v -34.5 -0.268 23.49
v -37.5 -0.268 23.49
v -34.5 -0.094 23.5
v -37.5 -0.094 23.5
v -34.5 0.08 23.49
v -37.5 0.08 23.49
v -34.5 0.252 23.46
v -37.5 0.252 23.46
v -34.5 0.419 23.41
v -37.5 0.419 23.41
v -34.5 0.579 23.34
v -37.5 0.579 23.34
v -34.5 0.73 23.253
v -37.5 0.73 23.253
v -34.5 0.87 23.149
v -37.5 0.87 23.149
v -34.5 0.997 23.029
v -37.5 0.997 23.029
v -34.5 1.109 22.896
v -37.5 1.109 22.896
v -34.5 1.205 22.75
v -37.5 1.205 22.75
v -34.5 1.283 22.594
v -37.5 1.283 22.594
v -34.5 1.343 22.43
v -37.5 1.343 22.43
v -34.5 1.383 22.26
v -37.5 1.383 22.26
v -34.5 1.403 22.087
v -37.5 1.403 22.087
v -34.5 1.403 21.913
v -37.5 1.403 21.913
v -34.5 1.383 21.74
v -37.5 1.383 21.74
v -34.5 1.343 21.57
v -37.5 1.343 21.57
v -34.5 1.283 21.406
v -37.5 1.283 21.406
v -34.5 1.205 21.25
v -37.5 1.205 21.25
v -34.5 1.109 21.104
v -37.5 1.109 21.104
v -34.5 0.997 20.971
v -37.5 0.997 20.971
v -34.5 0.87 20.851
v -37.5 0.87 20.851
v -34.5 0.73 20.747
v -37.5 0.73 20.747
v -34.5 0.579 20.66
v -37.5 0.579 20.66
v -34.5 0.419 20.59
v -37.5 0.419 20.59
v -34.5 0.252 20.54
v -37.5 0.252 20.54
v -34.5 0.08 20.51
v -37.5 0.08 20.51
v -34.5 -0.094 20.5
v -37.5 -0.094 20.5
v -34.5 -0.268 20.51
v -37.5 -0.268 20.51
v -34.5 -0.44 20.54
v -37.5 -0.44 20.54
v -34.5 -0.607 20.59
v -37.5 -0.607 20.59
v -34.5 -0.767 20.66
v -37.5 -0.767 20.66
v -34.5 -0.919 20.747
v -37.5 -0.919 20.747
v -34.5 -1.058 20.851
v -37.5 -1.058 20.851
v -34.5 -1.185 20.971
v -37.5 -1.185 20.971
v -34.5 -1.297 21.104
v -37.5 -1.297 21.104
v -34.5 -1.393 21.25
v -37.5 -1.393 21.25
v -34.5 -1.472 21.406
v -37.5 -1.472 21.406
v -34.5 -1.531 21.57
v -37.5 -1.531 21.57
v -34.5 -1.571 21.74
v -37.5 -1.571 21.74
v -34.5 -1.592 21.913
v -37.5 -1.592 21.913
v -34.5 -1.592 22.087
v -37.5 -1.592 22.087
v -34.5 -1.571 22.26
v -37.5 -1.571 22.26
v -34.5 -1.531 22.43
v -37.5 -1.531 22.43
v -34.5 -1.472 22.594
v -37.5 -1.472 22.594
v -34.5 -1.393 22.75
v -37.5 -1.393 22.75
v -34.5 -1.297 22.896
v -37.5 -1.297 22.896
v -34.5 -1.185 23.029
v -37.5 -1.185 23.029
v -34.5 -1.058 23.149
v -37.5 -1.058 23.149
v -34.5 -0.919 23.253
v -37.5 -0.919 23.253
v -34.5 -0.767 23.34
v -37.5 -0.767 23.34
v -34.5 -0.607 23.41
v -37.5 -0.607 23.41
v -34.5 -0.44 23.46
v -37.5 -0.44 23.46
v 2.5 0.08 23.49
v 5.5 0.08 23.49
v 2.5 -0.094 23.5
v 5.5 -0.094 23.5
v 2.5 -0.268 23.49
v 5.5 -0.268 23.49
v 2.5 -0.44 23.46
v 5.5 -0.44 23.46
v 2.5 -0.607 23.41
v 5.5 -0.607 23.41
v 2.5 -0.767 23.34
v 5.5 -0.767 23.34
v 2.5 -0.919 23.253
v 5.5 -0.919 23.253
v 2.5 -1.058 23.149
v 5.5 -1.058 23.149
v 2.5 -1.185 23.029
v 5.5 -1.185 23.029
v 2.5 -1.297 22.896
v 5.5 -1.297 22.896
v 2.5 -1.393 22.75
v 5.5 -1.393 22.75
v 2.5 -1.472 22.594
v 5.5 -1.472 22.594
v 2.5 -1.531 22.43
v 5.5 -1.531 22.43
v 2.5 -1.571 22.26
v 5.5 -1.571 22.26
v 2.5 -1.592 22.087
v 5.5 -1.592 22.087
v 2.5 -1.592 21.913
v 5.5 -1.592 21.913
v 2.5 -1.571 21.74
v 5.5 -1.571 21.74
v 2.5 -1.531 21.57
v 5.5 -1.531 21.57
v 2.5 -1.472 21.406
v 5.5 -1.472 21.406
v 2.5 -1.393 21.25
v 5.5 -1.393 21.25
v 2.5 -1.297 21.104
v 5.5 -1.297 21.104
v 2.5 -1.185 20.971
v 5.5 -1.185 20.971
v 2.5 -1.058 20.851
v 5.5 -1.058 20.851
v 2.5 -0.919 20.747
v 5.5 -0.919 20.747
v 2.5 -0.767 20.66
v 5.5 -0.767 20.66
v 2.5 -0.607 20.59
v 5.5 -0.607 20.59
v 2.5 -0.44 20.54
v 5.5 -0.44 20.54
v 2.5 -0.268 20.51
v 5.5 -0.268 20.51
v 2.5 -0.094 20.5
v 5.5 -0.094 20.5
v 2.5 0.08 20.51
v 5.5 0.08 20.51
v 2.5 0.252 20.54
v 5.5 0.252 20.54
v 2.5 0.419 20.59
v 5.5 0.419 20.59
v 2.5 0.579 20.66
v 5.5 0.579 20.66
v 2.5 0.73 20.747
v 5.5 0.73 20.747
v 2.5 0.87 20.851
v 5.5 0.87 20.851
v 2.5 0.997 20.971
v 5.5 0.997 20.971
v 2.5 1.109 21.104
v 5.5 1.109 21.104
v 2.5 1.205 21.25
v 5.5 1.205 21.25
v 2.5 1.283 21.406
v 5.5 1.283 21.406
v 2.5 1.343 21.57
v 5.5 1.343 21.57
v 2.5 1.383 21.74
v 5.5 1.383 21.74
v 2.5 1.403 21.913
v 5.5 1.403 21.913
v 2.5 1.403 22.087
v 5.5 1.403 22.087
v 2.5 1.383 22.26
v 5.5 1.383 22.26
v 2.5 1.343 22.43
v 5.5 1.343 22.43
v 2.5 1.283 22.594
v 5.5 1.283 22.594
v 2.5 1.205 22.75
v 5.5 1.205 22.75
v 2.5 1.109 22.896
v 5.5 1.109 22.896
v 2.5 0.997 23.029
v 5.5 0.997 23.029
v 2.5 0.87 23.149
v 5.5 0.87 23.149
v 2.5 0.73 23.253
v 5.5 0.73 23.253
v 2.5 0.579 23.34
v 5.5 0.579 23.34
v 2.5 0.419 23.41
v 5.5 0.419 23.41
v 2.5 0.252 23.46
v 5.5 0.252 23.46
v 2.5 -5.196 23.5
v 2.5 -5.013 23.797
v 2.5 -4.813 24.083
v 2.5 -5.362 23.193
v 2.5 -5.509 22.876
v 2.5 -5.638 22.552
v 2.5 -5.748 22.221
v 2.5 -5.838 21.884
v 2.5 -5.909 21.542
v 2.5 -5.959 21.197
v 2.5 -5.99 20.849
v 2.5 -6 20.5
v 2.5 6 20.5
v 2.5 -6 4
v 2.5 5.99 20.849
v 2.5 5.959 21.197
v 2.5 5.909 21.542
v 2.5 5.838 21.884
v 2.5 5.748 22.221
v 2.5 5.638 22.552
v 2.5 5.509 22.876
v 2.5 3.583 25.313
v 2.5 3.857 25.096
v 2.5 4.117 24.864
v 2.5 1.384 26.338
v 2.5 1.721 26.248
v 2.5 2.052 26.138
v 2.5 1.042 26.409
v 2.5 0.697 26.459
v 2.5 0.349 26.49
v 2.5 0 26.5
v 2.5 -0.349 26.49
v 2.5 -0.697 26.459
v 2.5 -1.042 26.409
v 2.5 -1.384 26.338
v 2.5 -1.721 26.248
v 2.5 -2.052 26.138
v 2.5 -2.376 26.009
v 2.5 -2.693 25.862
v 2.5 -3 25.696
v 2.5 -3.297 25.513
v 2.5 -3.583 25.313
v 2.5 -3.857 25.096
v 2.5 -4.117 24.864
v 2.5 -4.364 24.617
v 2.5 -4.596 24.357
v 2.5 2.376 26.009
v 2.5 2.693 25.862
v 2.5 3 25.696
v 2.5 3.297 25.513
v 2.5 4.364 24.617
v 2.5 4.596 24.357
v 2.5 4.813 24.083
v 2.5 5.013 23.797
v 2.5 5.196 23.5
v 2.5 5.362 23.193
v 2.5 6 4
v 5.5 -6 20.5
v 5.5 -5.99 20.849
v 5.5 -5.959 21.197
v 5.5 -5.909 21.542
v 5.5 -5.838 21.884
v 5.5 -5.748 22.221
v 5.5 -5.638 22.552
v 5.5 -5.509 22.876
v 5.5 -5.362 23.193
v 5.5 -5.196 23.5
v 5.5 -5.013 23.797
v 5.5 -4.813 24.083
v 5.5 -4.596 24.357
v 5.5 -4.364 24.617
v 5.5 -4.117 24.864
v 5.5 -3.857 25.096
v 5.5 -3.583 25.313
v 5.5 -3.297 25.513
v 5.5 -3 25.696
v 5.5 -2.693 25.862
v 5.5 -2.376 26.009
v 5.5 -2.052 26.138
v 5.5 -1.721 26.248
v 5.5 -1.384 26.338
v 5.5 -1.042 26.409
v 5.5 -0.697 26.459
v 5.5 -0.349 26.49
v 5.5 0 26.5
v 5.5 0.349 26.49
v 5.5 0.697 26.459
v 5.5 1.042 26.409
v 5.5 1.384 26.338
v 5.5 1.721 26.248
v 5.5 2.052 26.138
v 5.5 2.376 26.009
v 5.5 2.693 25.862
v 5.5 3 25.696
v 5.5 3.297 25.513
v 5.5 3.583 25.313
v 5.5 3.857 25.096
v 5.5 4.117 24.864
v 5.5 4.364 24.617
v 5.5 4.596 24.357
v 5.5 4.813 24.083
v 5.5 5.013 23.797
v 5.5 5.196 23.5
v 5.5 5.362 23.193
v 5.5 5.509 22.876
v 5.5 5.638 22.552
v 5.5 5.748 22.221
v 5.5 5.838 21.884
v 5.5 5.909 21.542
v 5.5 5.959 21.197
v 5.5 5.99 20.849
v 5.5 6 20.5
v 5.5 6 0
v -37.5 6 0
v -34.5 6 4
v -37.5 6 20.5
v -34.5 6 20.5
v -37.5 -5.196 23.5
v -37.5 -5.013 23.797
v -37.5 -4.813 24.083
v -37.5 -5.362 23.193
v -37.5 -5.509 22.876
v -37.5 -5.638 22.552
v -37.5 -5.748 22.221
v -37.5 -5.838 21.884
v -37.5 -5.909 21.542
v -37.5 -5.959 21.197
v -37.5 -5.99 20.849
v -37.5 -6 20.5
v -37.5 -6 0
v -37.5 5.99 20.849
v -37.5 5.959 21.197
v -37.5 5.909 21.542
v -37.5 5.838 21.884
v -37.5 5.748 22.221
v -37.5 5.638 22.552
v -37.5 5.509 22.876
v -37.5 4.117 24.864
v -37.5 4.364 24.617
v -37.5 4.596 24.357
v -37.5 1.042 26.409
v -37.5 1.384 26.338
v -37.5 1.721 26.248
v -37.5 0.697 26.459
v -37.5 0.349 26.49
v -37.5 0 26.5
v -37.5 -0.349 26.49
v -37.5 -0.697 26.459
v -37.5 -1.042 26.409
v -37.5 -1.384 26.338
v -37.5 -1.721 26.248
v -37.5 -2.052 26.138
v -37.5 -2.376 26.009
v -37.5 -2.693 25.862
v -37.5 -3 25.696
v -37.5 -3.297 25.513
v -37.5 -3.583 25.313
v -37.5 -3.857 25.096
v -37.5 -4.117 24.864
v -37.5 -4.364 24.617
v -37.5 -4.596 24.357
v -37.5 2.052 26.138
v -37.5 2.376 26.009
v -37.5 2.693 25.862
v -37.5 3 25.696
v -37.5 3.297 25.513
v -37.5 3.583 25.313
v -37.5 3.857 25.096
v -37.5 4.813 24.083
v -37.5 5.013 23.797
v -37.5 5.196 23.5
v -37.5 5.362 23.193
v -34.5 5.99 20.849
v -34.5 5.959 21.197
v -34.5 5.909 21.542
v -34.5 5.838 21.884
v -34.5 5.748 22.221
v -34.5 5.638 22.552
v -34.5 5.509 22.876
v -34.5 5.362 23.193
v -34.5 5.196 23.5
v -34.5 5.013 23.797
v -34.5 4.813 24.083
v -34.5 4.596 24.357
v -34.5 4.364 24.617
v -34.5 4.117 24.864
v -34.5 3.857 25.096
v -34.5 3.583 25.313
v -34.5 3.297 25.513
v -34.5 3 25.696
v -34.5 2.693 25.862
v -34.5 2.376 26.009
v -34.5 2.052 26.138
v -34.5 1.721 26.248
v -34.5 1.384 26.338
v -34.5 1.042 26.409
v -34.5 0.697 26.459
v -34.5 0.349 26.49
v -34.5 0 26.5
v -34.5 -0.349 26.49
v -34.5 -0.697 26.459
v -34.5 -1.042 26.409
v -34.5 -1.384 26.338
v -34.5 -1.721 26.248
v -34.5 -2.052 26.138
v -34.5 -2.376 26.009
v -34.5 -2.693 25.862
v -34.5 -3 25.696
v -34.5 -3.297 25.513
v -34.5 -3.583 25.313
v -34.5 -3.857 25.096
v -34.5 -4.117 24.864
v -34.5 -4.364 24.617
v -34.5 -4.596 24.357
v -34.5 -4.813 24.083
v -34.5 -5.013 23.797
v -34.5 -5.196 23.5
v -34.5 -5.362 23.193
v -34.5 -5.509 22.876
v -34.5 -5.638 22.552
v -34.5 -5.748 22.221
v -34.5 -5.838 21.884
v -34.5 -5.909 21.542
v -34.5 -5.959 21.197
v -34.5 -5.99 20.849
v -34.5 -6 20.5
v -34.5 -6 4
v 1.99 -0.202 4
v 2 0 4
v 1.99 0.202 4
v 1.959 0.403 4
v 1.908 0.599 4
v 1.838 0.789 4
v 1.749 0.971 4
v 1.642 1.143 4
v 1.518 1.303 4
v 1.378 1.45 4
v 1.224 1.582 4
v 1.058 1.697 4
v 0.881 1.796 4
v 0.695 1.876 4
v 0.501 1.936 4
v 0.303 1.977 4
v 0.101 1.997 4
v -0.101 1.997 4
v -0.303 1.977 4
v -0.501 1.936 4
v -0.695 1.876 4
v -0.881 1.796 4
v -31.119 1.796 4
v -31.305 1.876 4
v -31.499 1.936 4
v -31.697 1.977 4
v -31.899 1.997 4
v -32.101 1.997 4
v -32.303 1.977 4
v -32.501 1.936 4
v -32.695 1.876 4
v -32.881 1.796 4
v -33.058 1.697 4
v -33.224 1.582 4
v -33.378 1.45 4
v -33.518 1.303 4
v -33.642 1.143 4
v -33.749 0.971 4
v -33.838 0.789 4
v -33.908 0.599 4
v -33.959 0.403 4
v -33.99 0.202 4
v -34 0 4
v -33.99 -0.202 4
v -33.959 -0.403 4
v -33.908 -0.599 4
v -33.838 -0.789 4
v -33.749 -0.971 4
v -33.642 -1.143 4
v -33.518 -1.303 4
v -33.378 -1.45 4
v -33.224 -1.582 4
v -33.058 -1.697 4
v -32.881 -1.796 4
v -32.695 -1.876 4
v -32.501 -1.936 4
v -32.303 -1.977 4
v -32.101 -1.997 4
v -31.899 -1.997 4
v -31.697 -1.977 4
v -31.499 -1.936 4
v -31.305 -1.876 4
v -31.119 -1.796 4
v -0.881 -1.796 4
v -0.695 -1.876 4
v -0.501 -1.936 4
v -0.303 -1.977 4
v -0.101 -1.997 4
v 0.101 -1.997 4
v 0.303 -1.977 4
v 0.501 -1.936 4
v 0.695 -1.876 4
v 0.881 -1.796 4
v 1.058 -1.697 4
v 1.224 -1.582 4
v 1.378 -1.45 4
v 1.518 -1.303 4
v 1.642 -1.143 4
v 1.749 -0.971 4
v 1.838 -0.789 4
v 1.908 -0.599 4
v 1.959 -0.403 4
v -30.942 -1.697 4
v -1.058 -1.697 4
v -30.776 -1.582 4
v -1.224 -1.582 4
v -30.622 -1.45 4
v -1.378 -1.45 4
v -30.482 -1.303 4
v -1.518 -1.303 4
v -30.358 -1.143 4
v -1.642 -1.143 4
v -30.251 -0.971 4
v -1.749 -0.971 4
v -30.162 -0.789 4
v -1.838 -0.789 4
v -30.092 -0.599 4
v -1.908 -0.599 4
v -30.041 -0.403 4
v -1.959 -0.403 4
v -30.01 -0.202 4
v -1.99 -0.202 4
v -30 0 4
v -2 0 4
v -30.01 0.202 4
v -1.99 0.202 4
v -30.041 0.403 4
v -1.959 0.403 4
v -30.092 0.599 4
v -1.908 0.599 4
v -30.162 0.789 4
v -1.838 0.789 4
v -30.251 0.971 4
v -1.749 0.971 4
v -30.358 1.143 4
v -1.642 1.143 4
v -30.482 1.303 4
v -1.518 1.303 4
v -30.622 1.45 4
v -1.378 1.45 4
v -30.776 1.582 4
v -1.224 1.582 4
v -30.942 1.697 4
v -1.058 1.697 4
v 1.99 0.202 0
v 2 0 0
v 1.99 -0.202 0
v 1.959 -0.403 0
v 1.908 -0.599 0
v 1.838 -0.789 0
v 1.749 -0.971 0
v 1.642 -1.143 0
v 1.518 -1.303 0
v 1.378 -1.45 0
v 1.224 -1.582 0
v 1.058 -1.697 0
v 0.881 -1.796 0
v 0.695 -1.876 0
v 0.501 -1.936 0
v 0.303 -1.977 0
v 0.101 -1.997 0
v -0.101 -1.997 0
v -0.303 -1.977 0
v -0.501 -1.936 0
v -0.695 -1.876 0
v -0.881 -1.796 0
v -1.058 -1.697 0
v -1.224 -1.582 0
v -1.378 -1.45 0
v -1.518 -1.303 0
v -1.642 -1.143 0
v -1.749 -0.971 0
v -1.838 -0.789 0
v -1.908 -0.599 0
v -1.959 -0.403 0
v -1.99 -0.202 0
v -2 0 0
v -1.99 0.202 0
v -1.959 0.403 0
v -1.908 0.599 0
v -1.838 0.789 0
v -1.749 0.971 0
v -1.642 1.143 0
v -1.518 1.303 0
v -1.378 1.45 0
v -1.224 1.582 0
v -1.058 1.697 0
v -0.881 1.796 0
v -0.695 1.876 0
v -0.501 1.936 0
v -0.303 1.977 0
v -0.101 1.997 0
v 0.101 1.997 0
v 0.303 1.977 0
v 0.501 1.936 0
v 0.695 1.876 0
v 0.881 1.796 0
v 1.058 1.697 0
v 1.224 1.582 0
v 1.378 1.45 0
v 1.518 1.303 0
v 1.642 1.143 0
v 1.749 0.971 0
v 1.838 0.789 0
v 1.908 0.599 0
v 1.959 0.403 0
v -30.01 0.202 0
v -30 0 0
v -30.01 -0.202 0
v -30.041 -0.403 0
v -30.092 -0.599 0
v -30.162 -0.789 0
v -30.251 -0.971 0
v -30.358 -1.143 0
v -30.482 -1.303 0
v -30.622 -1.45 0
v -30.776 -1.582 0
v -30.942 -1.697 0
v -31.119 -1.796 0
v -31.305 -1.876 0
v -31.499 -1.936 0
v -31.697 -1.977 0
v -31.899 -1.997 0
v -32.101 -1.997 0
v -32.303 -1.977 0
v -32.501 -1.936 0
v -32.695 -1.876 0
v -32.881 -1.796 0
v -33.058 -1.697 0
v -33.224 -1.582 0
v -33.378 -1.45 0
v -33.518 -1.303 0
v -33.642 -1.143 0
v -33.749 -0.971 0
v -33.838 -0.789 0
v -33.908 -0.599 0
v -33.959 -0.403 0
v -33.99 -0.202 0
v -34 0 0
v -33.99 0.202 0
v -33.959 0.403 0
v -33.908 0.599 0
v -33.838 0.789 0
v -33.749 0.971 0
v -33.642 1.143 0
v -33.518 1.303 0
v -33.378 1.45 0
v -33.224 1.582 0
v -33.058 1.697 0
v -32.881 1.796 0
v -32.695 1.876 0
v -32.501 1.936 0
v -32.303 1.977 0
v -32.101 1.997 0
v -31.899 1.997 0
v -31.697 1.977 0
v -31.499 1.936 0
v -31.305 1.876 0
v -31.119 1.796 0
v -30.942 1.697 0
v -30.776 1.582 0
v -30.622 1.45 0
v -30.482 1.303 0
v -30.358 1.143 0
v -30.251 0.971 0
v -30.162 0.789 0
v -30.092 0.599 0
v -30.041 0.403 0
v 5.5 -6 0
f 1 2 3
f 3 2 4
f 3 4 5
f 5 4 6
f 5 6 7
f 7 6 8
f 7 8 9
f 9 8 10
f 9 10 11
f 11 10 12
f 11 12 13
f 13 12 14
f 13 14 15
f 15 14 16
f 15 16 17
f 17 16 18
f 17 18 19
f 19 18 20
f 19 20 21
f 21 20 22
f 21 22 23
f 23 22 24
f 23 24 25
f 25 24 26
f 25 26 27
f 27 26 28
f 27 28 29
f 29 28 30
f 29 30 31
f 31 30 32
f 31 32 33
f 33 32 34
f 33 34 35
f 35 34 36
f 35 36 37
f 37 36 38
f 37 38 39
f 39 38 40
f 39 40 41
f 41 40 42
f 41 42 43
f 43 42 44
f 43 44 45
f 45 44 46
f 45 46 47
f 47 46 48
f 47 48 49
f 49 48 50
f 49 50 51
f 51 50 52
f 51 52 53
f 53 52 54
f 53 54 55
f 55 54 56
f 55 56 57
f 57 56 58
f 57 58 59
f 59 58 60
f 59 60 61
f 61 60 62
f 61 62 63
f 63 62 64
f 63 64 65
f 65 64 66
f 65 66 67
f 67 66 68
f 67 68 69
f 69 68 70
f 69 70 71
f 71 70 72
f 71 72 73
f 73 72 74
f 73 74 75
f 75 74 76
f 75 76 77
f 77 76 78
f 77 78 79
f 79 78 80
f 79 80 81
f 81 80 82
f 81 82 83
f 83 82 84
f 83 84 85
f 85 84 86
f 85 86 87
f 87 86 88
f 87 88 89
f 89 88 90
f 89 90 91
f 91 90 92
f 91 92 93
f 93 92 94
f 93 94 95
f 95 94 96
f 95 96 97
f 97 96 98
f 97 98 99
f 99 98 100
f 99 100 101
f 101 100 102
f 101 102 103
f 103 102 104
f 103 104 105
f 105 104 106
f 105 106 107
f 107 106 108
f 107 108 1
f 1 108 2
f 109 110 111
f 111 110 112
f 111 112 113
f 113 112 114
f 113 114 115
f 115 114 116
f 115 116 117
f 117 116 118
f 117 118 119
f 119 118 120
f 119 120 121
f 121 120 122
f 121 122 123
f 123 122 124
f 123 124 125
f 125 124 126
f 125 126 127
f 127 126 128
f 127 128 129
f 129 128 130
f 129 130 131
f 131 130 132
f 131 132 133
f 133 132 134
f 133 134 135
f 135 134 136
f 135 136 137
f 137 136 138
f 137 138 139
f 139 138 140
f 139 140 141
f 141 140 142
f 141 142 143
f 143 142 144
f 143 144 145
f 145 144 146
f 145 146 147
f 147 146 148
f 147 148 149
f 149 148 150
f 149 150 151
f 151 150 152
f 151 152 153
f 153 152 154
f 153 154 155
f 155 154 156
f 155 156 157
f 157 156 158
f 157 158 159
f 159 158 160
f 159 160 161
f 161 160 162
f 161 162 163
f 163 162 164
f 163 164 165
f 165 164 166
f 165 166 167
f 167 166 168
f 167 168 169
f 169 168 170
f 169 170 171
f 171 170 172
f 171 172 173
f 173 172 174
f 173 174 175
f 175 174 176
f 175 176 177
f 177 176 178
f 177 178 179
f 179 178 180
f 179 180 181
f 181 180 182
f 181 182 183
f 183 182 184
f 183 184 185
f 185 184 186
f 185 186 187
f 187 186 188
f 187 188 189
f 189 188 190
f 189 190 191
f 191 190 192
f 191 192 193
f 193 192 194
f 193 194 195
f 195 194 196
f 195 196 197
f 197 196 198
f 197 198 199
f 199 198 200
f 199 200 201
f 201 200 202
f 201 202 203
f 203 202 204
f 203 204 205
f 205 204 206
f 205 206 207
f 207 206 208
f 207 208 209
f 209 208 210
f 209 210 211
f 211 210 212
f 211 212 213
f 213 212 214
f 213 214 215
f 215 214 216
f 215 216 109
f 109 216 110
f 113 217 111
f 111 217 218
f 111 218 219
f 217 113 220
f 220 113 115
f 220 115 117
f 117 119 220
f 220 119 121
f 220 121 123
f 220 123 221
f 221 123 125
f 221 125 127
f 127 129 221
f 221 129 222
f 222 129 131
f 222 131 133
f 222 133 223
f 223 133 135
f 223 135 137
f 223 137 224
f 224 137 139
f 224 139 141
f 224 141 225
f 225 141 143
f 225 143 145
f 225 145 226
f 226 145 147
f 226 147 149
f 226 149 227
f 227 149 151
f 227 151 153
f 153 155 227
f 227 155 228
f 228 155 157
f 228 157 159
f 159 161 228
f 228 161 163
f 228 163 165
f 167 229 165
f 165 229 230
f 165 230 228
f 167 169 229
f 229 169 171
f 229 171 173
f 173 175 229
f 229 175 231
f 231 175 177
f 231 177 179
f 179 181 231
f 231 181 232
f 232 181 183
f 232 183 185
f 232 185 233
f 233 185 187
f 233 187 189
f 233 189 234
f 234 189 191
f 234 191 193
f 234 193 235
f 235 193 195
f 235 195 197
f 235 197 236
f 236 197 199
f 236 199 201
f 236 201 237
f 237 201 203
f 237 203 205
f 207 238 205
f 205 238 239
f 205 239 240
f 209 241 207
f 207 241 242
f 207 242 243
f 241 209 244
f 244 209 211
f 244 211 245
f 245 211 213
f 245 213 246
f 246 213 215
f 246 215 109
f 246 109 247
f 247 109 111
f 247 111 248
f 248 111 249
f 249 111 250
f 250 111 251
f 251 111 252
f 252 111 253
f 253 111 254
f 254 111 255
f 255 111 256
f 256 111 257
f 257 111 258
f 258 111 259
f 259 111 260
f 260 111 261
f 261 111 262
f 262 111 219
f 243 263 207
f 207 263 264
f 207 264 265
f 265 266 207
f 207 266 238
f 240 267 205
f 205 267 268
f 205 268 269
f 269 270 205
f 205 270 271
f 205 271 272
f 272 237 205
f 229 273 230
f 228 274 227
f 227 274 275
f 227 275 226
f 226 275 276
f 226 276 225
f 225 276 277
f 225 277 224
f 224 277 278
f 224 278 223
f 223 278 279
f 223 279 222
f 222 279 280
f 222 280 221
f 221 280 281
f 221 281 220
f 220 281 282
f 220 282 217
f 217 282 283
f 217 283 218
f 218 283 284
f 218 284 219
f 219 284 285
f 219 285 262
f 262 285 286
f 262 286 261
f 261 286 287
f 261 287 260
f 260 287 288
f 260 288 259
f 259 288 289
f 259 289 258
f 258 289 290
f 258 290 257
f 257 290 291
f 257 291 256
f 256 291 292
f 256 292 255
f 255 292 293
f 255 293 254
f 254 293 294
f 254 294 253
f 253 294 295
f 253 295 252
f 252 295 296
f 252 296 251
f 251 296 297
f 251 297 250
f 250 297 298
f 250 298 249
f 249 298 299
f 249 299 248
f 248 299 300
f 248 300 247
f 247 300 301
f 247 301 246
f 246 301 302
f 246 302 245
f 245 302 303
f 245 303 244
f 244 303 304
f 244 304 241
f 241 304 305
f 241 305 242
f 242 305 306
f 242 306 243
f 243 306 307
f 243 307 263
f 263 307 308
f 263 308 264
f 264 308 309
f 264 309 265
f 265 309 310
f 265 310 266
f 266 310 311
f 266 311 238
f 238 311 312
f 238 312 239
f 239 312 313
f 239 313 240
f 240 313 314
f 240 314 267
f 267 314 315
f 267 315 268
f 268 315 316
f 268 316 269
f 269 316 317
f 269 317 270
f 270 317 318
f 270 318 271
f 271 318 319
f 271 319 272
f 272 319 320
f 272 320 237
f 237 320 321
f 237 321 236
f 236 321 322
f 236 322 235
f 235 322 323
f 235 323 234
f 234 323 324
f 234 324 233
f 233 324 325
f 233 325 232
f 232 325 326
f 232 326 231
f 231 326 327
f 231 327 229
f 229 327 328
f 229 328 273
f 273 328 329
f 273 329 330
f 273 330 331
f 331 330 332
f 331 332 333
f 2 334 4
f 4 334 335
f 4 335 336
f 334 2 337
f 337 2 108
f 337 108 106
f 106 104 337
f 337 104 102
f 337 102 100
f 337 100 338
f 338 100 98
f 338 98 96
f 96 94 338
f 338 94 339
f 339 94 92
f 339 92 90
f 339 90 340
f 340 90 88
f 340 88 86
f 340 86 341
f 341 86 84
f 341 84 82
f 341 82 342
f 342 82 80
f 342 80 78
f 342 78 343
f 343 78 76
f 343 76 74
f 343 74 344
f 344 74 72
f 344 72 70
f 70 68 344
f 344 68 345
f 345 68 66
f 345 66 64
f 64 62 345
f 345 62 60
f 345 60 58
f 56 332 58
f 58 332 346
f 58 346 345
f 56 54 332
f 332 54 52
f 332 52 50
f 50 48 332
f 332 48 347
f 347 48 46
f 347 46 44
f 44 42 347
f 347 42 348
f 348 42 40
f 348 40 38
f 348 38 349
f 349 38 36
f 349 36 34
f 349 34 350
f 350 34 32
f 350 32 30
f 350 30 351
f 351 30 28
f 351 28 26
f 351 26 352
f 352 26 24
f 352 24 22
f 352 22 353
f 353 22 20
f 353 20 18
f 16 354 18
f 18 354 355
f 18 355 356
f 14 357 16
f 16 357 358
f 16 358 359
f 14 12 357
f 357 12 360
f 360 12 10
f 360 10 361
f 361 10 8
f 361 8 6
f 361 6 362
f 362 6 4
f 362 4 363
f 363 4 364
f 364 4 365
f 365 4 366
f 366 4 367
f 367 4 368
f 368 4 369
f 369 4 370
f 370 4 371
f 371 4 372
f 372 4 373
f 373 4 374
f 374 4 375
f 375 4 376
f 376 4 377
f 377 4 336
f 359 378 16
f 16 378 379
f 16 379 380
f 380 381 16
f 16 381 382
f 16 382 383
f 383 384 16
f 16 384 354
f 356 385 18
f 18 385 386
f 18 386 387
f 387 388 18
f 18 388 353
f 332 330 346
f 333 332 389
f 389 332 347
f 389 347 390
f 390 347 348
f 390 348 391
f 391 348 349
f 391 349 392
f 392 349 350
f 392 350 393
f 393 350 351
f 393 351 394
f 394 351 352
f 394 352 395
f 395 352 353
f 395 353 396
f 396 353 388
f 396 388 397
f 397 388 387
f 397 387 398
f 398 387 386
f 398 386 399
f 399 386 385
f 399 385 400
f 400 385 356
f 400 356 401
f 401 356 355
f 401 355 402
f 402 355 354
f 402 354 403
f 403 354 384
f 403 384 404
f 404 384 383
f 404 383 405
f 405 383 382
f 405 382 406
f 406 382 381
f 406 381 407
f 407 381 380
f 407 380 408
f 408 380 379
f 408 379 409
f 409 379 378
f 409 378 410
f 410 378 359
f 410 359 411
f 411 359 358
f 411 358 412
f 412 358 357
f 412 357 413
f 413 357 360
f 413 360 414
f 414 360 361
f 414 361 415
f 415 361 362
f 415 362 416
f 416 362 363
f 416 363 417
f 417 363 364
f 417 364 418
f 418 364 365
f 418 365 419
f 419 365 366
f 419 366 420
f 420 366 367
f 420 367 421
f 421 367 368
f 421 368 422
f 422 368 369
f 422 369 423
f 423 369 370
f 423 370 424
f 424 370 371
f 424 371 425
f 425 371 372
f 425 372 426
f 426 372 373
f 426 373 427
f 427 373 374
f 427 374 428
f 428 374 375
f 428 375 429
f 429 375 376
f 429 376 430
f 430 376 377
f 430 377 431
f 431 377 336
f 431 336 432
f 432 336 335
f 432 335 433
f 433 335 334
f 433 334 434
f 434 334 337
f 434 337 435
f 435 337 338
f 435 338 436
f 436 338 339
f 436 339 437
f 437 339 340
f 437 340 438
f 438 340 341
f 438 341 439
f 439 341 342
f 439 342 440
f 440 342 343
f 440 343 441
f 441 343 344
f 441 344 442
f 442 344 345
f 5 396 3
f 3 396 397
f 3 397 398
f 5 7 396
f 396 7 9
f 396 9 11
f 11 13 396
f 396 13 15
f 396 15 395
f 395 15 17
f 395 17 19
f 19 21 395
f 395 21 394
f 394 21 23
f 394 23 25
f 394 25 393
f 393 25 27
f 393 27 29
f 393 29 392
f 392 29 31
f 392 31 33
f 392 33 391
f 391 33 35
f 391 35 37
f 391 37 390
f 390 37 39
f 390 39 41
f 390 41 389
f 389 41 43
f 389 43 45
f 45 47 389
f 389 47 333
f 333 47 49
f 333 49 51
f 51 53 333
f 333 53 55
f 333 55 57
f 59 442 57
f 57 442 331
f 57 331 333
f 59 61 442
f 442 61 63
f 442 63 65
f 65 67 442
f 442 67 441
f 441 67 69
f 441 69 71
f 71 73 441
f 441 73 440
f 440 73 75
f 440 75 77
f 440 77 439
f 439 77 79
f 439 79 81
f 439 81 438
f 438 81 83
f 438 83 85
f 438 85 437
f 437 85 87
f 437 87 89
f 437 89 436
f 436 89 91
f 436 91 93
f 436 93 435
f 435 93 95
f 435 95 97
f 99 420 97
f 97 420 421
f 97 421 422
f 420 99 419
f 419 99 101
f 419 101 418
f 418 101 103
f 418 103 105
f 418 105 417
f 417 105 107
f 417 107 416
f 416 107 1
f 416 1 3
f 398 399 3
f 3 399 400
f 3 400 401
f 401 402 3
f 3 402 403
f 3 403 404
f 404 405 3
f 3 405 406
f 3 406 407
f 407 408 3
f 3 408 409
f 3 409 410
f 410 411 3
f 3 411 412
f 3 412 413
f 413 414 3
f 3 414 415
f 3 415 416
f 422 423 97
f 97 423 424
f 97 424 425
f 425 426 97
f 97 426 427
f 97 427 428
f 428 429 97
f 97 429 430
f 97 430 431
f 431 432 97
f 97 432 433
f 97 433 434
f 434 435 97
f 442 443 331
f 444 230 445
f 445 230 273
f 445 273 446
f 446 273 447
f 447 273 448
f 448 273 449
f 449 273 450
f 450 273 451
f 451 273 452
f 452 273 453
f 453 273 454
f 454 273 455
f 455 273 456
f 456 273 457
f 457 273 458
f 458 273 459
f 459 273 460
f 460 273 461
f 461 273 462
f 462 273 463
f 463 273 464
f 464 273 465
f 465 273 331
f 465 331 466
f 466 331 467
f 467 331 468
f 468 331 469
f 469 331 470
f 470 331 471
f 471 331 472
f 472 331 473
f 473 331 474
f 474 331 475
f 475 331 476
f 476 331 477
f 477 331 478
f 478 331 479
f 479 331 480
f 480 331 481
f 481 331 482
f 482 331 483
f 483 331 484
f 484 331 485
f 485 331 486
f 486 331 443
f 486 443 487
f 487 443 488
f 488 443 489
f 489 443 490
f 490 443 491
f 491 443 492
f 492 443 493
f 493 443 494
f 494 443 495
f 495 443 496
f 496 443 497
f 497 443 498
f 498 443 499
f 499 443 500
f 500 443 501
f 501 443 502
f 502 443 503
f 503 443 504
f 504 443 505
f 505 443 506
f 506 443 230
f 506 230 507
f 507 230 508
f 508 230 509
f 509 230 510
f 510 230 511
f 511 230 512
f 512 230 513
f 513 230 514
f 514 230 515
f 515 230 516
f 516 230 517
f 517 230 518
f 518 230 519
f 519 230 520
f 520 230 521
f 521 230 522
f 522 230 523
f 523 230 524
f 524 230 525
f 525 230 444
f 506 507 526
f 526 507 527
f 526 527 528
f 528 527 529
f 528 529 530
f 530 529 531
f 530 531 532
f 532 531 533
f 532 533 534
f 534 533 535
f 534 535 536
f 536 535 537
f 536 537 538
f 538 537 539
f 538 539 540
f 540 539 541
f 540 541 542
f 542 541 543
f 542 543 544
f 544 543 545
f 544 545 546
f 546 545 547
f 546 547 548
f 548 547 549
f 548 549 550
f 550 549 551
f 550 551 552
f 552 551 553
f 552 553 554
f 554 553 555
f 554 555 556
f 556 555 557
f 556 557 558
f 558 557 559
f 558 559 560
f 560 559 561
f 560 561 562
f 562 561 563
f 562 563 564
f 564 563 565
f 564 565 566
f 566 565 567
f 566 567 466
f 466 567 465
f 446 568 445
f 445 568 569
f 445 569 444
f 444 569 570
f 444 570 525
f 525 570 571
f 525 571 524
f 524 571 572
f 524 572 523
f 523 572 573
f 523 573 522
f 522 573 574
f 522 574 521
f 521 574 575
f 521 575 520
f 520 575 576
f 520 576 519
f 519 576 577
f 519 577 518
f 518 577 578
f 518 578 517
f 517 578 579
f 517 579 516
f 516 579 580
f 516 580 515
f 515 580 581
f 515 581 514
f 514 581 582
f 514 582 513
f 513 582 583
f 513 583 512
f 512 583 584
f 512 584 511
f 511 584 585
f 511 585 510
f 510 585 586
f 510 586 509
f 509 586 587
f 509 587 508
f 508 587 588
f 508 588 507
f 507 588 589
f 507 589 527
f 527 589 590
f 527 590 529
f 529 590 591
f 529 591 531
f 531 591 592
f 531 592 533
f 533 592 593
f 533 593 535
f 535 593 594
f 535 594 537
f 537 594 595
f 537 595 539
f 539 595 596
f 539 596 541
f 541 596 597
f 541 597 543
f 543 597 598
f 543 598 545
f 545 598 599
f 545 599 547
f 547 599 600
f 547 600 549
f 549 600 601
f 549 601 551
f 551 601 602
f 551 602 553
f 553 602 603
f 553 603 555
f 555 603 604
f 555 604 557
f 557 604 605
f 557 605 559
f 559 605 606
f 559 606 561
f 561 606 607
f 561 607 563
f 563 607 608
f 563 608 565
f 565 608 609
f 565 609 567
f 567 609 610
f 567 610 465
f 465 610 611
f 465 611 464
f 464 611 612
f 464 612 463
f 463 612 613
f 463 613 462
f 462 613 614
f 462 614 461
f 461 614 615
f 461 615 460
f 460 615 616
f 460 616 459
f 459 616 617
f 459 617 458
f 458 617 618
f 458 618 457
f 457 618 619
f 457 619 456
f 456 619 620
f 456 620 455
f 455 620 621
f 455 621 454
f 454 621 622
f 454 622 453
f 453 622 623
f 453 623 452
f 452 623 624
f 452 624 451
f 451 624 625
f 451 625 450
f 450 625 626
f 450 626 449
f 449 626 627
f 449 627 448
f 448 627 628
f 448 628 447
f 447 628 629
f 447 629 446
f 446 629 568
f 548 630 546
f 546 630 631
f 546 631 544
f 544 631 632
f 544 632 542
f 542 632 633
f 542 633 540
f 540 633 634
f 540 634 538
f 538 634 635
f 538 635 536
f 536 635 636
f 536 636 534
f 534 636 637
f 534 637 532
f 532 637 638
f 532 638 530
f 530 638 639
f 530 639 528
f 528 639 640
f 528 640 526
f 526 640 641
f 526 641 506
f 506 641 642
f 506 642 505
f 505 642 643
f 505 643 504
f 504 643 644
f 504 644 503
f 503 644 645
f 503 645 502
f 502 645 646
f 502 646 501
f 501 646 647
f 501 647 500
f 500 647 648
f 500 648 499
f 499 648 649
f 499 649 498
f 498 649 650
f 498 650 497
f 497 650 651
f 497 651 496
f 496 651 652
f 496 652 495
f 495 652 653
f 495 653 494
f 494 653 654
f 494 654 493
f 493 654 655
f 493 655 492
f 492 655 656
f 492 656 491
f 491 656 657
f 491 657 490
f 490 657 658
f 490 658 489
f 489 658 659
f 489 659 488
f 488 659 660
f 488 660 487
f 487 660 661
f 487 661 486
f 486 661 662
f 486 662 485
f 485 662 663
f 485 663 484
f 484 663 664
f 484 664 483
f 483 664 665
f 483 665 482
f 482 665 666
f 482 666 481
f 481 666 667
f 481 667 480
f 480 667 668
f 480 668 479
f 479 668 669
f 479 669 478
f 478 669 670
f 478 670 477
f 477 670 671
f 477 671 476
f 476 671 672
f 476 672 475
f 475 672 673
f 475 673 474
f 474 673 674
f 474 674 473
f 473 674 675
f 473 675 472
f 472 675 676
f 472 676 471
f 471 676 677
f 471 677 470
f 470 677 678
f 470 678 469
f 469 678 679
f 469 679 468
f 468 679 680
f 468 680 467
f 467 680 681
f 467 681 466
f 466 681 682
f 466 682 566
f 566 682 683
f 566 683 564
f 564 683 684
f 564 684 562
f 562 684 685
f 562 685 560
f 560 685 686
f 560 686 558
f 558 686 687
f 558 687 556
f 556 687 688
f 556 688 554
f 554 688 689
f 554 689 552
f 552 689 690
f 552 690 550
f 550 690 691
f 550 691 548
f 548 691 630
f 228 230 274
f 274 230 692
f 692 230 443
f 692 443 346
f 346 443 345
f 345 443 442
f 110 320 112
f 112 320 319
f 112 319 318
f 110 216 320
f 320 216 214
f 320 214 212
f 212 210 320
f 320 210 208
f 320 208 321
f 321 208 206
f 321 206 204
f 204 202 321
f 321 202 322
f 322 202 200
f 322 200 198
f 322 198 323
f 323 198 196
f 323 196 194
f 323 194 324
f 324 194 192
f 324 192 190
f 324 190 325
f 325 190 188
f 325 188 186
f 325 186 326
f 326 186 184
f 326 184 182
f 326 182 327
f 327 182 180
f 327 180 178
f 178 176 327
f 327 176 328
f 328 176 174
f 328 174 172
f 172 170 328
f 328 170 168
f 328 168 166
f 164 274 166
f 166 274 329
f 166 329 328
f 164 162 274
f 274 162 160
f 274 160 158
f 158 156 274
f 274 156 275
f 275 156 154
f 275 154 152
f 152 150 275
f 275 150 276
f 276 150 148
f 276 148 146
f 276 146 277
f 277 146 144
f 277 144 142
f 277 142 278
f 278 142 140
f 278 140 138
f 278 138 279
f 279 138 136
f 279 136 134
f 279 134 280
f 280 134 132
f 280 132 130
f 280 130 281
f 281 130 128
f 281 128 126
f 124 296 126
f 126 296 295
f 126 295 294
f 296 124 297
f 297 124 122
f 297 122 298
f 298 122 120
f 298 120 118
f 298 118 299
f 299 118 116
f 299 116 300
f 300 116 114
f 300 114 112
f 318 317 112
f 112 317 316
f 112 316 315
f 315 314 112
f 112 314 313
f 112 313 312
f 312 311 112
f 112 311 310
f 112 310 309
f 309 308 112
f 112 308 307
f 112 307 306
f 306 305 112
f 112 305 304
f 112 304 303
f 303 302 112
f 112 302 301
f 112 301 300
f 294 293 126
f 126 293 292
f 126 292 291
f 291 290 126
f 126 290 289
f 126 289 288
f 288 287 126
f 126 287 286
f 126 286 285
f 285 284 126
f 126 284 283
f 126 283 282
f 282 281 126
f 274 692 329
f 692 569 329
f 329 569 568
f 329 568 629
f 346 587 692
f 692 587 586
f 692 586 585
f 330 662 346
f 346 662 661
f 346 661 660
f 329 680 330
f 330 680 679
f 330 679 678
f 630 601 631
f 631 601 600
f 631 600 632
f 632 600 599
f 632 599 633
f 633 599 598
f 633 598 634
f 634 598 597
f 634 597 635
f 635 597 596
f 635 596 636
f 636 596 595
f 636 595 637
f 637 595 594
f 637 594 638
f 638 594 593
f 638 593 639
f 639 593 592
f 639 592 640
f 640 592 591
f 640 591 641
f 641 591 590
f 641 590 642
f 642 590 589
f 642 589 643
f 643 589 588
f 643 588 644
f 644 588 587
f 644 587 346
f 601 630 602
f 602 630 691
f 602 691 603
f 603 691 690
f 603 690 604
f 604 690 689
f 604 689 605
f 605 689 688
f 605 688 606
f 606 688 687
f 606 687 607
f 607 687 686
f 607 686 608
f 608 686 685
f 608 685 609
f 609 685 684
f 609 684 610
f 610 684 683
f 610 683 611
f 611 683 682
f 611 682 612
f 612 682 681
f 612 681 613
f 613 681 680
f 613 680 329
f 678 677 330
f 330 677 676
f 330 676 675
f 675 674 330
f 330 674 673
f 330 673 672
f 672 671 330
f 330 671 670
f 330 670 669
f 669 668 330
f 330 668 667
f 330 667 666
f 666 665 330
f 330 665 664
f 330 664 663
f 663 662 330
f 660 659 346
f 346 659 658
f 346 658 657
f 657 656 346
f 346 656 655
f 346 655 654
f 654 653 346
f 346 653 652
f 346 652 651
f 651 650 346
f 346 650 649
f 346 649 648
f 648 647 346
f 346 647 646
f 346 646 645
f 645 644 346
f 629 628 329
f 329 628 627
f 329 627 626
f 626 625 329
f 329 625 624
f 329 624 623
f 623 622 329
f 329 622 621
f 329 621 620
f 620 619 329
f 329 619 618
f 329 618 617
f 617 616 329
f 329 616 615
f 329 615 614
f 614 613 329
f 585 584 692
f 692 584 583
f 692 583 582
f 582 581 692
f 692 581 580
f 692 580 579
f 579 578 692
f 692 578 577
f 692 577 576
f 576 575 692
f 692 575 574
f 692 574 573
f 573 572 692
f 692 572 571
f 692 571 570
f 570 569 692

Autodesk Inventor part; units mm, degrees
ref_plane "YZ Plane" through (0, 0, 0) normal (1, 0, 0) x (0, 1, 0)
ref_plane "XZ Plane" through (0, 0, 0) normal (0, 1, 0) x (-1, 0, 0)
ref_plane "XY Plane" through (0, 0, 0) normal (0, 0, 1) x (1, 0, 0)
sketch "Szkic1" plane through (0, 0, 0) normal (0, 0, 1) x (1, 0, 0)
  line L0 (0, 0) -> (-32, 0)
  circle A0 centre (-32, 0) radius 2
  circle A1 centre (0, 0) radius 2
  line L1 (-37.5, -6) -> (5.5, -6)
  line L2 (5.5, -6) -> (5.5, 6)
  line L3 (5.5, 6) -> (-37.5, 6)
  line L4 (-37.5, 6) -> (-37.5, -6)
  line L5 (-37.5, -6) -> (5.5, 6) construction
  line L6 (5.5, -6) -> (-37.5, 6) construction
  point P0 (-16, 0)
  dimension "d2" = 32
  dimension "d3" = 4
  dimension "d4" = 4
  dimension "d5" = 43
  dimension "d6" = 12
extrude "Wyciągnięcie proste1" add sketch "Szkic1" along normal blind 4
sketch "Szkic2" plane through (0, 0, 4) normal (0, 0, 1) x (1, 0, 0)
  line L0 (5.5, -6) -> (5.5, 6) projected
  line L1 (-37.5, -6) -> (5.5, -6) projected
  line L2 (5.5, 6) -> (2.5, 6)
  line L3 (2.5, 6) -> (2.5, -6)
  line L4 (2.5, -6) -> (5.5, -6)
  line L5 (5.5, -6) -> (5.5, 6)
  line L6 (-37.5, 6) -> (-34.5, 6)
  line L7 (-34.5, 6) -> (-34.5, -6)
  line L8 (-34.5, -6) -> (-37.5, -6)
  line L9 (-37.5, -6) -> (-37.5, 6)
  dimension "d12" = 3
  dimension "d13" = 3
extrude "Wyciągnięcie proste2" add sketch "Szkic2" along normal blind 22.5
fillet "Zaokrąglenie1" radius 6 4 edges at (-36, 6, 26.5) (-36, -6, 26.5) (4, 6, 26.5) (4, -6, 26.5)
sketch "Szkic3" plane through (-34.5, -6, 4) normal (1, 0, 0) x (0, 0, -1)
  line L0 (0, 5.9057) -> (-18, 5.9057)
  circle A0 centre (-18, 5.9057) radius 1.5
  point P0 (4, 6)
  dimension "d15" = 18
  dimension "d21" = 3
extrude "Wyciągnięcie proste3" cut sketch "Szkic3" along normal mid plane 100
properties part number "Zebatka holderv2"
